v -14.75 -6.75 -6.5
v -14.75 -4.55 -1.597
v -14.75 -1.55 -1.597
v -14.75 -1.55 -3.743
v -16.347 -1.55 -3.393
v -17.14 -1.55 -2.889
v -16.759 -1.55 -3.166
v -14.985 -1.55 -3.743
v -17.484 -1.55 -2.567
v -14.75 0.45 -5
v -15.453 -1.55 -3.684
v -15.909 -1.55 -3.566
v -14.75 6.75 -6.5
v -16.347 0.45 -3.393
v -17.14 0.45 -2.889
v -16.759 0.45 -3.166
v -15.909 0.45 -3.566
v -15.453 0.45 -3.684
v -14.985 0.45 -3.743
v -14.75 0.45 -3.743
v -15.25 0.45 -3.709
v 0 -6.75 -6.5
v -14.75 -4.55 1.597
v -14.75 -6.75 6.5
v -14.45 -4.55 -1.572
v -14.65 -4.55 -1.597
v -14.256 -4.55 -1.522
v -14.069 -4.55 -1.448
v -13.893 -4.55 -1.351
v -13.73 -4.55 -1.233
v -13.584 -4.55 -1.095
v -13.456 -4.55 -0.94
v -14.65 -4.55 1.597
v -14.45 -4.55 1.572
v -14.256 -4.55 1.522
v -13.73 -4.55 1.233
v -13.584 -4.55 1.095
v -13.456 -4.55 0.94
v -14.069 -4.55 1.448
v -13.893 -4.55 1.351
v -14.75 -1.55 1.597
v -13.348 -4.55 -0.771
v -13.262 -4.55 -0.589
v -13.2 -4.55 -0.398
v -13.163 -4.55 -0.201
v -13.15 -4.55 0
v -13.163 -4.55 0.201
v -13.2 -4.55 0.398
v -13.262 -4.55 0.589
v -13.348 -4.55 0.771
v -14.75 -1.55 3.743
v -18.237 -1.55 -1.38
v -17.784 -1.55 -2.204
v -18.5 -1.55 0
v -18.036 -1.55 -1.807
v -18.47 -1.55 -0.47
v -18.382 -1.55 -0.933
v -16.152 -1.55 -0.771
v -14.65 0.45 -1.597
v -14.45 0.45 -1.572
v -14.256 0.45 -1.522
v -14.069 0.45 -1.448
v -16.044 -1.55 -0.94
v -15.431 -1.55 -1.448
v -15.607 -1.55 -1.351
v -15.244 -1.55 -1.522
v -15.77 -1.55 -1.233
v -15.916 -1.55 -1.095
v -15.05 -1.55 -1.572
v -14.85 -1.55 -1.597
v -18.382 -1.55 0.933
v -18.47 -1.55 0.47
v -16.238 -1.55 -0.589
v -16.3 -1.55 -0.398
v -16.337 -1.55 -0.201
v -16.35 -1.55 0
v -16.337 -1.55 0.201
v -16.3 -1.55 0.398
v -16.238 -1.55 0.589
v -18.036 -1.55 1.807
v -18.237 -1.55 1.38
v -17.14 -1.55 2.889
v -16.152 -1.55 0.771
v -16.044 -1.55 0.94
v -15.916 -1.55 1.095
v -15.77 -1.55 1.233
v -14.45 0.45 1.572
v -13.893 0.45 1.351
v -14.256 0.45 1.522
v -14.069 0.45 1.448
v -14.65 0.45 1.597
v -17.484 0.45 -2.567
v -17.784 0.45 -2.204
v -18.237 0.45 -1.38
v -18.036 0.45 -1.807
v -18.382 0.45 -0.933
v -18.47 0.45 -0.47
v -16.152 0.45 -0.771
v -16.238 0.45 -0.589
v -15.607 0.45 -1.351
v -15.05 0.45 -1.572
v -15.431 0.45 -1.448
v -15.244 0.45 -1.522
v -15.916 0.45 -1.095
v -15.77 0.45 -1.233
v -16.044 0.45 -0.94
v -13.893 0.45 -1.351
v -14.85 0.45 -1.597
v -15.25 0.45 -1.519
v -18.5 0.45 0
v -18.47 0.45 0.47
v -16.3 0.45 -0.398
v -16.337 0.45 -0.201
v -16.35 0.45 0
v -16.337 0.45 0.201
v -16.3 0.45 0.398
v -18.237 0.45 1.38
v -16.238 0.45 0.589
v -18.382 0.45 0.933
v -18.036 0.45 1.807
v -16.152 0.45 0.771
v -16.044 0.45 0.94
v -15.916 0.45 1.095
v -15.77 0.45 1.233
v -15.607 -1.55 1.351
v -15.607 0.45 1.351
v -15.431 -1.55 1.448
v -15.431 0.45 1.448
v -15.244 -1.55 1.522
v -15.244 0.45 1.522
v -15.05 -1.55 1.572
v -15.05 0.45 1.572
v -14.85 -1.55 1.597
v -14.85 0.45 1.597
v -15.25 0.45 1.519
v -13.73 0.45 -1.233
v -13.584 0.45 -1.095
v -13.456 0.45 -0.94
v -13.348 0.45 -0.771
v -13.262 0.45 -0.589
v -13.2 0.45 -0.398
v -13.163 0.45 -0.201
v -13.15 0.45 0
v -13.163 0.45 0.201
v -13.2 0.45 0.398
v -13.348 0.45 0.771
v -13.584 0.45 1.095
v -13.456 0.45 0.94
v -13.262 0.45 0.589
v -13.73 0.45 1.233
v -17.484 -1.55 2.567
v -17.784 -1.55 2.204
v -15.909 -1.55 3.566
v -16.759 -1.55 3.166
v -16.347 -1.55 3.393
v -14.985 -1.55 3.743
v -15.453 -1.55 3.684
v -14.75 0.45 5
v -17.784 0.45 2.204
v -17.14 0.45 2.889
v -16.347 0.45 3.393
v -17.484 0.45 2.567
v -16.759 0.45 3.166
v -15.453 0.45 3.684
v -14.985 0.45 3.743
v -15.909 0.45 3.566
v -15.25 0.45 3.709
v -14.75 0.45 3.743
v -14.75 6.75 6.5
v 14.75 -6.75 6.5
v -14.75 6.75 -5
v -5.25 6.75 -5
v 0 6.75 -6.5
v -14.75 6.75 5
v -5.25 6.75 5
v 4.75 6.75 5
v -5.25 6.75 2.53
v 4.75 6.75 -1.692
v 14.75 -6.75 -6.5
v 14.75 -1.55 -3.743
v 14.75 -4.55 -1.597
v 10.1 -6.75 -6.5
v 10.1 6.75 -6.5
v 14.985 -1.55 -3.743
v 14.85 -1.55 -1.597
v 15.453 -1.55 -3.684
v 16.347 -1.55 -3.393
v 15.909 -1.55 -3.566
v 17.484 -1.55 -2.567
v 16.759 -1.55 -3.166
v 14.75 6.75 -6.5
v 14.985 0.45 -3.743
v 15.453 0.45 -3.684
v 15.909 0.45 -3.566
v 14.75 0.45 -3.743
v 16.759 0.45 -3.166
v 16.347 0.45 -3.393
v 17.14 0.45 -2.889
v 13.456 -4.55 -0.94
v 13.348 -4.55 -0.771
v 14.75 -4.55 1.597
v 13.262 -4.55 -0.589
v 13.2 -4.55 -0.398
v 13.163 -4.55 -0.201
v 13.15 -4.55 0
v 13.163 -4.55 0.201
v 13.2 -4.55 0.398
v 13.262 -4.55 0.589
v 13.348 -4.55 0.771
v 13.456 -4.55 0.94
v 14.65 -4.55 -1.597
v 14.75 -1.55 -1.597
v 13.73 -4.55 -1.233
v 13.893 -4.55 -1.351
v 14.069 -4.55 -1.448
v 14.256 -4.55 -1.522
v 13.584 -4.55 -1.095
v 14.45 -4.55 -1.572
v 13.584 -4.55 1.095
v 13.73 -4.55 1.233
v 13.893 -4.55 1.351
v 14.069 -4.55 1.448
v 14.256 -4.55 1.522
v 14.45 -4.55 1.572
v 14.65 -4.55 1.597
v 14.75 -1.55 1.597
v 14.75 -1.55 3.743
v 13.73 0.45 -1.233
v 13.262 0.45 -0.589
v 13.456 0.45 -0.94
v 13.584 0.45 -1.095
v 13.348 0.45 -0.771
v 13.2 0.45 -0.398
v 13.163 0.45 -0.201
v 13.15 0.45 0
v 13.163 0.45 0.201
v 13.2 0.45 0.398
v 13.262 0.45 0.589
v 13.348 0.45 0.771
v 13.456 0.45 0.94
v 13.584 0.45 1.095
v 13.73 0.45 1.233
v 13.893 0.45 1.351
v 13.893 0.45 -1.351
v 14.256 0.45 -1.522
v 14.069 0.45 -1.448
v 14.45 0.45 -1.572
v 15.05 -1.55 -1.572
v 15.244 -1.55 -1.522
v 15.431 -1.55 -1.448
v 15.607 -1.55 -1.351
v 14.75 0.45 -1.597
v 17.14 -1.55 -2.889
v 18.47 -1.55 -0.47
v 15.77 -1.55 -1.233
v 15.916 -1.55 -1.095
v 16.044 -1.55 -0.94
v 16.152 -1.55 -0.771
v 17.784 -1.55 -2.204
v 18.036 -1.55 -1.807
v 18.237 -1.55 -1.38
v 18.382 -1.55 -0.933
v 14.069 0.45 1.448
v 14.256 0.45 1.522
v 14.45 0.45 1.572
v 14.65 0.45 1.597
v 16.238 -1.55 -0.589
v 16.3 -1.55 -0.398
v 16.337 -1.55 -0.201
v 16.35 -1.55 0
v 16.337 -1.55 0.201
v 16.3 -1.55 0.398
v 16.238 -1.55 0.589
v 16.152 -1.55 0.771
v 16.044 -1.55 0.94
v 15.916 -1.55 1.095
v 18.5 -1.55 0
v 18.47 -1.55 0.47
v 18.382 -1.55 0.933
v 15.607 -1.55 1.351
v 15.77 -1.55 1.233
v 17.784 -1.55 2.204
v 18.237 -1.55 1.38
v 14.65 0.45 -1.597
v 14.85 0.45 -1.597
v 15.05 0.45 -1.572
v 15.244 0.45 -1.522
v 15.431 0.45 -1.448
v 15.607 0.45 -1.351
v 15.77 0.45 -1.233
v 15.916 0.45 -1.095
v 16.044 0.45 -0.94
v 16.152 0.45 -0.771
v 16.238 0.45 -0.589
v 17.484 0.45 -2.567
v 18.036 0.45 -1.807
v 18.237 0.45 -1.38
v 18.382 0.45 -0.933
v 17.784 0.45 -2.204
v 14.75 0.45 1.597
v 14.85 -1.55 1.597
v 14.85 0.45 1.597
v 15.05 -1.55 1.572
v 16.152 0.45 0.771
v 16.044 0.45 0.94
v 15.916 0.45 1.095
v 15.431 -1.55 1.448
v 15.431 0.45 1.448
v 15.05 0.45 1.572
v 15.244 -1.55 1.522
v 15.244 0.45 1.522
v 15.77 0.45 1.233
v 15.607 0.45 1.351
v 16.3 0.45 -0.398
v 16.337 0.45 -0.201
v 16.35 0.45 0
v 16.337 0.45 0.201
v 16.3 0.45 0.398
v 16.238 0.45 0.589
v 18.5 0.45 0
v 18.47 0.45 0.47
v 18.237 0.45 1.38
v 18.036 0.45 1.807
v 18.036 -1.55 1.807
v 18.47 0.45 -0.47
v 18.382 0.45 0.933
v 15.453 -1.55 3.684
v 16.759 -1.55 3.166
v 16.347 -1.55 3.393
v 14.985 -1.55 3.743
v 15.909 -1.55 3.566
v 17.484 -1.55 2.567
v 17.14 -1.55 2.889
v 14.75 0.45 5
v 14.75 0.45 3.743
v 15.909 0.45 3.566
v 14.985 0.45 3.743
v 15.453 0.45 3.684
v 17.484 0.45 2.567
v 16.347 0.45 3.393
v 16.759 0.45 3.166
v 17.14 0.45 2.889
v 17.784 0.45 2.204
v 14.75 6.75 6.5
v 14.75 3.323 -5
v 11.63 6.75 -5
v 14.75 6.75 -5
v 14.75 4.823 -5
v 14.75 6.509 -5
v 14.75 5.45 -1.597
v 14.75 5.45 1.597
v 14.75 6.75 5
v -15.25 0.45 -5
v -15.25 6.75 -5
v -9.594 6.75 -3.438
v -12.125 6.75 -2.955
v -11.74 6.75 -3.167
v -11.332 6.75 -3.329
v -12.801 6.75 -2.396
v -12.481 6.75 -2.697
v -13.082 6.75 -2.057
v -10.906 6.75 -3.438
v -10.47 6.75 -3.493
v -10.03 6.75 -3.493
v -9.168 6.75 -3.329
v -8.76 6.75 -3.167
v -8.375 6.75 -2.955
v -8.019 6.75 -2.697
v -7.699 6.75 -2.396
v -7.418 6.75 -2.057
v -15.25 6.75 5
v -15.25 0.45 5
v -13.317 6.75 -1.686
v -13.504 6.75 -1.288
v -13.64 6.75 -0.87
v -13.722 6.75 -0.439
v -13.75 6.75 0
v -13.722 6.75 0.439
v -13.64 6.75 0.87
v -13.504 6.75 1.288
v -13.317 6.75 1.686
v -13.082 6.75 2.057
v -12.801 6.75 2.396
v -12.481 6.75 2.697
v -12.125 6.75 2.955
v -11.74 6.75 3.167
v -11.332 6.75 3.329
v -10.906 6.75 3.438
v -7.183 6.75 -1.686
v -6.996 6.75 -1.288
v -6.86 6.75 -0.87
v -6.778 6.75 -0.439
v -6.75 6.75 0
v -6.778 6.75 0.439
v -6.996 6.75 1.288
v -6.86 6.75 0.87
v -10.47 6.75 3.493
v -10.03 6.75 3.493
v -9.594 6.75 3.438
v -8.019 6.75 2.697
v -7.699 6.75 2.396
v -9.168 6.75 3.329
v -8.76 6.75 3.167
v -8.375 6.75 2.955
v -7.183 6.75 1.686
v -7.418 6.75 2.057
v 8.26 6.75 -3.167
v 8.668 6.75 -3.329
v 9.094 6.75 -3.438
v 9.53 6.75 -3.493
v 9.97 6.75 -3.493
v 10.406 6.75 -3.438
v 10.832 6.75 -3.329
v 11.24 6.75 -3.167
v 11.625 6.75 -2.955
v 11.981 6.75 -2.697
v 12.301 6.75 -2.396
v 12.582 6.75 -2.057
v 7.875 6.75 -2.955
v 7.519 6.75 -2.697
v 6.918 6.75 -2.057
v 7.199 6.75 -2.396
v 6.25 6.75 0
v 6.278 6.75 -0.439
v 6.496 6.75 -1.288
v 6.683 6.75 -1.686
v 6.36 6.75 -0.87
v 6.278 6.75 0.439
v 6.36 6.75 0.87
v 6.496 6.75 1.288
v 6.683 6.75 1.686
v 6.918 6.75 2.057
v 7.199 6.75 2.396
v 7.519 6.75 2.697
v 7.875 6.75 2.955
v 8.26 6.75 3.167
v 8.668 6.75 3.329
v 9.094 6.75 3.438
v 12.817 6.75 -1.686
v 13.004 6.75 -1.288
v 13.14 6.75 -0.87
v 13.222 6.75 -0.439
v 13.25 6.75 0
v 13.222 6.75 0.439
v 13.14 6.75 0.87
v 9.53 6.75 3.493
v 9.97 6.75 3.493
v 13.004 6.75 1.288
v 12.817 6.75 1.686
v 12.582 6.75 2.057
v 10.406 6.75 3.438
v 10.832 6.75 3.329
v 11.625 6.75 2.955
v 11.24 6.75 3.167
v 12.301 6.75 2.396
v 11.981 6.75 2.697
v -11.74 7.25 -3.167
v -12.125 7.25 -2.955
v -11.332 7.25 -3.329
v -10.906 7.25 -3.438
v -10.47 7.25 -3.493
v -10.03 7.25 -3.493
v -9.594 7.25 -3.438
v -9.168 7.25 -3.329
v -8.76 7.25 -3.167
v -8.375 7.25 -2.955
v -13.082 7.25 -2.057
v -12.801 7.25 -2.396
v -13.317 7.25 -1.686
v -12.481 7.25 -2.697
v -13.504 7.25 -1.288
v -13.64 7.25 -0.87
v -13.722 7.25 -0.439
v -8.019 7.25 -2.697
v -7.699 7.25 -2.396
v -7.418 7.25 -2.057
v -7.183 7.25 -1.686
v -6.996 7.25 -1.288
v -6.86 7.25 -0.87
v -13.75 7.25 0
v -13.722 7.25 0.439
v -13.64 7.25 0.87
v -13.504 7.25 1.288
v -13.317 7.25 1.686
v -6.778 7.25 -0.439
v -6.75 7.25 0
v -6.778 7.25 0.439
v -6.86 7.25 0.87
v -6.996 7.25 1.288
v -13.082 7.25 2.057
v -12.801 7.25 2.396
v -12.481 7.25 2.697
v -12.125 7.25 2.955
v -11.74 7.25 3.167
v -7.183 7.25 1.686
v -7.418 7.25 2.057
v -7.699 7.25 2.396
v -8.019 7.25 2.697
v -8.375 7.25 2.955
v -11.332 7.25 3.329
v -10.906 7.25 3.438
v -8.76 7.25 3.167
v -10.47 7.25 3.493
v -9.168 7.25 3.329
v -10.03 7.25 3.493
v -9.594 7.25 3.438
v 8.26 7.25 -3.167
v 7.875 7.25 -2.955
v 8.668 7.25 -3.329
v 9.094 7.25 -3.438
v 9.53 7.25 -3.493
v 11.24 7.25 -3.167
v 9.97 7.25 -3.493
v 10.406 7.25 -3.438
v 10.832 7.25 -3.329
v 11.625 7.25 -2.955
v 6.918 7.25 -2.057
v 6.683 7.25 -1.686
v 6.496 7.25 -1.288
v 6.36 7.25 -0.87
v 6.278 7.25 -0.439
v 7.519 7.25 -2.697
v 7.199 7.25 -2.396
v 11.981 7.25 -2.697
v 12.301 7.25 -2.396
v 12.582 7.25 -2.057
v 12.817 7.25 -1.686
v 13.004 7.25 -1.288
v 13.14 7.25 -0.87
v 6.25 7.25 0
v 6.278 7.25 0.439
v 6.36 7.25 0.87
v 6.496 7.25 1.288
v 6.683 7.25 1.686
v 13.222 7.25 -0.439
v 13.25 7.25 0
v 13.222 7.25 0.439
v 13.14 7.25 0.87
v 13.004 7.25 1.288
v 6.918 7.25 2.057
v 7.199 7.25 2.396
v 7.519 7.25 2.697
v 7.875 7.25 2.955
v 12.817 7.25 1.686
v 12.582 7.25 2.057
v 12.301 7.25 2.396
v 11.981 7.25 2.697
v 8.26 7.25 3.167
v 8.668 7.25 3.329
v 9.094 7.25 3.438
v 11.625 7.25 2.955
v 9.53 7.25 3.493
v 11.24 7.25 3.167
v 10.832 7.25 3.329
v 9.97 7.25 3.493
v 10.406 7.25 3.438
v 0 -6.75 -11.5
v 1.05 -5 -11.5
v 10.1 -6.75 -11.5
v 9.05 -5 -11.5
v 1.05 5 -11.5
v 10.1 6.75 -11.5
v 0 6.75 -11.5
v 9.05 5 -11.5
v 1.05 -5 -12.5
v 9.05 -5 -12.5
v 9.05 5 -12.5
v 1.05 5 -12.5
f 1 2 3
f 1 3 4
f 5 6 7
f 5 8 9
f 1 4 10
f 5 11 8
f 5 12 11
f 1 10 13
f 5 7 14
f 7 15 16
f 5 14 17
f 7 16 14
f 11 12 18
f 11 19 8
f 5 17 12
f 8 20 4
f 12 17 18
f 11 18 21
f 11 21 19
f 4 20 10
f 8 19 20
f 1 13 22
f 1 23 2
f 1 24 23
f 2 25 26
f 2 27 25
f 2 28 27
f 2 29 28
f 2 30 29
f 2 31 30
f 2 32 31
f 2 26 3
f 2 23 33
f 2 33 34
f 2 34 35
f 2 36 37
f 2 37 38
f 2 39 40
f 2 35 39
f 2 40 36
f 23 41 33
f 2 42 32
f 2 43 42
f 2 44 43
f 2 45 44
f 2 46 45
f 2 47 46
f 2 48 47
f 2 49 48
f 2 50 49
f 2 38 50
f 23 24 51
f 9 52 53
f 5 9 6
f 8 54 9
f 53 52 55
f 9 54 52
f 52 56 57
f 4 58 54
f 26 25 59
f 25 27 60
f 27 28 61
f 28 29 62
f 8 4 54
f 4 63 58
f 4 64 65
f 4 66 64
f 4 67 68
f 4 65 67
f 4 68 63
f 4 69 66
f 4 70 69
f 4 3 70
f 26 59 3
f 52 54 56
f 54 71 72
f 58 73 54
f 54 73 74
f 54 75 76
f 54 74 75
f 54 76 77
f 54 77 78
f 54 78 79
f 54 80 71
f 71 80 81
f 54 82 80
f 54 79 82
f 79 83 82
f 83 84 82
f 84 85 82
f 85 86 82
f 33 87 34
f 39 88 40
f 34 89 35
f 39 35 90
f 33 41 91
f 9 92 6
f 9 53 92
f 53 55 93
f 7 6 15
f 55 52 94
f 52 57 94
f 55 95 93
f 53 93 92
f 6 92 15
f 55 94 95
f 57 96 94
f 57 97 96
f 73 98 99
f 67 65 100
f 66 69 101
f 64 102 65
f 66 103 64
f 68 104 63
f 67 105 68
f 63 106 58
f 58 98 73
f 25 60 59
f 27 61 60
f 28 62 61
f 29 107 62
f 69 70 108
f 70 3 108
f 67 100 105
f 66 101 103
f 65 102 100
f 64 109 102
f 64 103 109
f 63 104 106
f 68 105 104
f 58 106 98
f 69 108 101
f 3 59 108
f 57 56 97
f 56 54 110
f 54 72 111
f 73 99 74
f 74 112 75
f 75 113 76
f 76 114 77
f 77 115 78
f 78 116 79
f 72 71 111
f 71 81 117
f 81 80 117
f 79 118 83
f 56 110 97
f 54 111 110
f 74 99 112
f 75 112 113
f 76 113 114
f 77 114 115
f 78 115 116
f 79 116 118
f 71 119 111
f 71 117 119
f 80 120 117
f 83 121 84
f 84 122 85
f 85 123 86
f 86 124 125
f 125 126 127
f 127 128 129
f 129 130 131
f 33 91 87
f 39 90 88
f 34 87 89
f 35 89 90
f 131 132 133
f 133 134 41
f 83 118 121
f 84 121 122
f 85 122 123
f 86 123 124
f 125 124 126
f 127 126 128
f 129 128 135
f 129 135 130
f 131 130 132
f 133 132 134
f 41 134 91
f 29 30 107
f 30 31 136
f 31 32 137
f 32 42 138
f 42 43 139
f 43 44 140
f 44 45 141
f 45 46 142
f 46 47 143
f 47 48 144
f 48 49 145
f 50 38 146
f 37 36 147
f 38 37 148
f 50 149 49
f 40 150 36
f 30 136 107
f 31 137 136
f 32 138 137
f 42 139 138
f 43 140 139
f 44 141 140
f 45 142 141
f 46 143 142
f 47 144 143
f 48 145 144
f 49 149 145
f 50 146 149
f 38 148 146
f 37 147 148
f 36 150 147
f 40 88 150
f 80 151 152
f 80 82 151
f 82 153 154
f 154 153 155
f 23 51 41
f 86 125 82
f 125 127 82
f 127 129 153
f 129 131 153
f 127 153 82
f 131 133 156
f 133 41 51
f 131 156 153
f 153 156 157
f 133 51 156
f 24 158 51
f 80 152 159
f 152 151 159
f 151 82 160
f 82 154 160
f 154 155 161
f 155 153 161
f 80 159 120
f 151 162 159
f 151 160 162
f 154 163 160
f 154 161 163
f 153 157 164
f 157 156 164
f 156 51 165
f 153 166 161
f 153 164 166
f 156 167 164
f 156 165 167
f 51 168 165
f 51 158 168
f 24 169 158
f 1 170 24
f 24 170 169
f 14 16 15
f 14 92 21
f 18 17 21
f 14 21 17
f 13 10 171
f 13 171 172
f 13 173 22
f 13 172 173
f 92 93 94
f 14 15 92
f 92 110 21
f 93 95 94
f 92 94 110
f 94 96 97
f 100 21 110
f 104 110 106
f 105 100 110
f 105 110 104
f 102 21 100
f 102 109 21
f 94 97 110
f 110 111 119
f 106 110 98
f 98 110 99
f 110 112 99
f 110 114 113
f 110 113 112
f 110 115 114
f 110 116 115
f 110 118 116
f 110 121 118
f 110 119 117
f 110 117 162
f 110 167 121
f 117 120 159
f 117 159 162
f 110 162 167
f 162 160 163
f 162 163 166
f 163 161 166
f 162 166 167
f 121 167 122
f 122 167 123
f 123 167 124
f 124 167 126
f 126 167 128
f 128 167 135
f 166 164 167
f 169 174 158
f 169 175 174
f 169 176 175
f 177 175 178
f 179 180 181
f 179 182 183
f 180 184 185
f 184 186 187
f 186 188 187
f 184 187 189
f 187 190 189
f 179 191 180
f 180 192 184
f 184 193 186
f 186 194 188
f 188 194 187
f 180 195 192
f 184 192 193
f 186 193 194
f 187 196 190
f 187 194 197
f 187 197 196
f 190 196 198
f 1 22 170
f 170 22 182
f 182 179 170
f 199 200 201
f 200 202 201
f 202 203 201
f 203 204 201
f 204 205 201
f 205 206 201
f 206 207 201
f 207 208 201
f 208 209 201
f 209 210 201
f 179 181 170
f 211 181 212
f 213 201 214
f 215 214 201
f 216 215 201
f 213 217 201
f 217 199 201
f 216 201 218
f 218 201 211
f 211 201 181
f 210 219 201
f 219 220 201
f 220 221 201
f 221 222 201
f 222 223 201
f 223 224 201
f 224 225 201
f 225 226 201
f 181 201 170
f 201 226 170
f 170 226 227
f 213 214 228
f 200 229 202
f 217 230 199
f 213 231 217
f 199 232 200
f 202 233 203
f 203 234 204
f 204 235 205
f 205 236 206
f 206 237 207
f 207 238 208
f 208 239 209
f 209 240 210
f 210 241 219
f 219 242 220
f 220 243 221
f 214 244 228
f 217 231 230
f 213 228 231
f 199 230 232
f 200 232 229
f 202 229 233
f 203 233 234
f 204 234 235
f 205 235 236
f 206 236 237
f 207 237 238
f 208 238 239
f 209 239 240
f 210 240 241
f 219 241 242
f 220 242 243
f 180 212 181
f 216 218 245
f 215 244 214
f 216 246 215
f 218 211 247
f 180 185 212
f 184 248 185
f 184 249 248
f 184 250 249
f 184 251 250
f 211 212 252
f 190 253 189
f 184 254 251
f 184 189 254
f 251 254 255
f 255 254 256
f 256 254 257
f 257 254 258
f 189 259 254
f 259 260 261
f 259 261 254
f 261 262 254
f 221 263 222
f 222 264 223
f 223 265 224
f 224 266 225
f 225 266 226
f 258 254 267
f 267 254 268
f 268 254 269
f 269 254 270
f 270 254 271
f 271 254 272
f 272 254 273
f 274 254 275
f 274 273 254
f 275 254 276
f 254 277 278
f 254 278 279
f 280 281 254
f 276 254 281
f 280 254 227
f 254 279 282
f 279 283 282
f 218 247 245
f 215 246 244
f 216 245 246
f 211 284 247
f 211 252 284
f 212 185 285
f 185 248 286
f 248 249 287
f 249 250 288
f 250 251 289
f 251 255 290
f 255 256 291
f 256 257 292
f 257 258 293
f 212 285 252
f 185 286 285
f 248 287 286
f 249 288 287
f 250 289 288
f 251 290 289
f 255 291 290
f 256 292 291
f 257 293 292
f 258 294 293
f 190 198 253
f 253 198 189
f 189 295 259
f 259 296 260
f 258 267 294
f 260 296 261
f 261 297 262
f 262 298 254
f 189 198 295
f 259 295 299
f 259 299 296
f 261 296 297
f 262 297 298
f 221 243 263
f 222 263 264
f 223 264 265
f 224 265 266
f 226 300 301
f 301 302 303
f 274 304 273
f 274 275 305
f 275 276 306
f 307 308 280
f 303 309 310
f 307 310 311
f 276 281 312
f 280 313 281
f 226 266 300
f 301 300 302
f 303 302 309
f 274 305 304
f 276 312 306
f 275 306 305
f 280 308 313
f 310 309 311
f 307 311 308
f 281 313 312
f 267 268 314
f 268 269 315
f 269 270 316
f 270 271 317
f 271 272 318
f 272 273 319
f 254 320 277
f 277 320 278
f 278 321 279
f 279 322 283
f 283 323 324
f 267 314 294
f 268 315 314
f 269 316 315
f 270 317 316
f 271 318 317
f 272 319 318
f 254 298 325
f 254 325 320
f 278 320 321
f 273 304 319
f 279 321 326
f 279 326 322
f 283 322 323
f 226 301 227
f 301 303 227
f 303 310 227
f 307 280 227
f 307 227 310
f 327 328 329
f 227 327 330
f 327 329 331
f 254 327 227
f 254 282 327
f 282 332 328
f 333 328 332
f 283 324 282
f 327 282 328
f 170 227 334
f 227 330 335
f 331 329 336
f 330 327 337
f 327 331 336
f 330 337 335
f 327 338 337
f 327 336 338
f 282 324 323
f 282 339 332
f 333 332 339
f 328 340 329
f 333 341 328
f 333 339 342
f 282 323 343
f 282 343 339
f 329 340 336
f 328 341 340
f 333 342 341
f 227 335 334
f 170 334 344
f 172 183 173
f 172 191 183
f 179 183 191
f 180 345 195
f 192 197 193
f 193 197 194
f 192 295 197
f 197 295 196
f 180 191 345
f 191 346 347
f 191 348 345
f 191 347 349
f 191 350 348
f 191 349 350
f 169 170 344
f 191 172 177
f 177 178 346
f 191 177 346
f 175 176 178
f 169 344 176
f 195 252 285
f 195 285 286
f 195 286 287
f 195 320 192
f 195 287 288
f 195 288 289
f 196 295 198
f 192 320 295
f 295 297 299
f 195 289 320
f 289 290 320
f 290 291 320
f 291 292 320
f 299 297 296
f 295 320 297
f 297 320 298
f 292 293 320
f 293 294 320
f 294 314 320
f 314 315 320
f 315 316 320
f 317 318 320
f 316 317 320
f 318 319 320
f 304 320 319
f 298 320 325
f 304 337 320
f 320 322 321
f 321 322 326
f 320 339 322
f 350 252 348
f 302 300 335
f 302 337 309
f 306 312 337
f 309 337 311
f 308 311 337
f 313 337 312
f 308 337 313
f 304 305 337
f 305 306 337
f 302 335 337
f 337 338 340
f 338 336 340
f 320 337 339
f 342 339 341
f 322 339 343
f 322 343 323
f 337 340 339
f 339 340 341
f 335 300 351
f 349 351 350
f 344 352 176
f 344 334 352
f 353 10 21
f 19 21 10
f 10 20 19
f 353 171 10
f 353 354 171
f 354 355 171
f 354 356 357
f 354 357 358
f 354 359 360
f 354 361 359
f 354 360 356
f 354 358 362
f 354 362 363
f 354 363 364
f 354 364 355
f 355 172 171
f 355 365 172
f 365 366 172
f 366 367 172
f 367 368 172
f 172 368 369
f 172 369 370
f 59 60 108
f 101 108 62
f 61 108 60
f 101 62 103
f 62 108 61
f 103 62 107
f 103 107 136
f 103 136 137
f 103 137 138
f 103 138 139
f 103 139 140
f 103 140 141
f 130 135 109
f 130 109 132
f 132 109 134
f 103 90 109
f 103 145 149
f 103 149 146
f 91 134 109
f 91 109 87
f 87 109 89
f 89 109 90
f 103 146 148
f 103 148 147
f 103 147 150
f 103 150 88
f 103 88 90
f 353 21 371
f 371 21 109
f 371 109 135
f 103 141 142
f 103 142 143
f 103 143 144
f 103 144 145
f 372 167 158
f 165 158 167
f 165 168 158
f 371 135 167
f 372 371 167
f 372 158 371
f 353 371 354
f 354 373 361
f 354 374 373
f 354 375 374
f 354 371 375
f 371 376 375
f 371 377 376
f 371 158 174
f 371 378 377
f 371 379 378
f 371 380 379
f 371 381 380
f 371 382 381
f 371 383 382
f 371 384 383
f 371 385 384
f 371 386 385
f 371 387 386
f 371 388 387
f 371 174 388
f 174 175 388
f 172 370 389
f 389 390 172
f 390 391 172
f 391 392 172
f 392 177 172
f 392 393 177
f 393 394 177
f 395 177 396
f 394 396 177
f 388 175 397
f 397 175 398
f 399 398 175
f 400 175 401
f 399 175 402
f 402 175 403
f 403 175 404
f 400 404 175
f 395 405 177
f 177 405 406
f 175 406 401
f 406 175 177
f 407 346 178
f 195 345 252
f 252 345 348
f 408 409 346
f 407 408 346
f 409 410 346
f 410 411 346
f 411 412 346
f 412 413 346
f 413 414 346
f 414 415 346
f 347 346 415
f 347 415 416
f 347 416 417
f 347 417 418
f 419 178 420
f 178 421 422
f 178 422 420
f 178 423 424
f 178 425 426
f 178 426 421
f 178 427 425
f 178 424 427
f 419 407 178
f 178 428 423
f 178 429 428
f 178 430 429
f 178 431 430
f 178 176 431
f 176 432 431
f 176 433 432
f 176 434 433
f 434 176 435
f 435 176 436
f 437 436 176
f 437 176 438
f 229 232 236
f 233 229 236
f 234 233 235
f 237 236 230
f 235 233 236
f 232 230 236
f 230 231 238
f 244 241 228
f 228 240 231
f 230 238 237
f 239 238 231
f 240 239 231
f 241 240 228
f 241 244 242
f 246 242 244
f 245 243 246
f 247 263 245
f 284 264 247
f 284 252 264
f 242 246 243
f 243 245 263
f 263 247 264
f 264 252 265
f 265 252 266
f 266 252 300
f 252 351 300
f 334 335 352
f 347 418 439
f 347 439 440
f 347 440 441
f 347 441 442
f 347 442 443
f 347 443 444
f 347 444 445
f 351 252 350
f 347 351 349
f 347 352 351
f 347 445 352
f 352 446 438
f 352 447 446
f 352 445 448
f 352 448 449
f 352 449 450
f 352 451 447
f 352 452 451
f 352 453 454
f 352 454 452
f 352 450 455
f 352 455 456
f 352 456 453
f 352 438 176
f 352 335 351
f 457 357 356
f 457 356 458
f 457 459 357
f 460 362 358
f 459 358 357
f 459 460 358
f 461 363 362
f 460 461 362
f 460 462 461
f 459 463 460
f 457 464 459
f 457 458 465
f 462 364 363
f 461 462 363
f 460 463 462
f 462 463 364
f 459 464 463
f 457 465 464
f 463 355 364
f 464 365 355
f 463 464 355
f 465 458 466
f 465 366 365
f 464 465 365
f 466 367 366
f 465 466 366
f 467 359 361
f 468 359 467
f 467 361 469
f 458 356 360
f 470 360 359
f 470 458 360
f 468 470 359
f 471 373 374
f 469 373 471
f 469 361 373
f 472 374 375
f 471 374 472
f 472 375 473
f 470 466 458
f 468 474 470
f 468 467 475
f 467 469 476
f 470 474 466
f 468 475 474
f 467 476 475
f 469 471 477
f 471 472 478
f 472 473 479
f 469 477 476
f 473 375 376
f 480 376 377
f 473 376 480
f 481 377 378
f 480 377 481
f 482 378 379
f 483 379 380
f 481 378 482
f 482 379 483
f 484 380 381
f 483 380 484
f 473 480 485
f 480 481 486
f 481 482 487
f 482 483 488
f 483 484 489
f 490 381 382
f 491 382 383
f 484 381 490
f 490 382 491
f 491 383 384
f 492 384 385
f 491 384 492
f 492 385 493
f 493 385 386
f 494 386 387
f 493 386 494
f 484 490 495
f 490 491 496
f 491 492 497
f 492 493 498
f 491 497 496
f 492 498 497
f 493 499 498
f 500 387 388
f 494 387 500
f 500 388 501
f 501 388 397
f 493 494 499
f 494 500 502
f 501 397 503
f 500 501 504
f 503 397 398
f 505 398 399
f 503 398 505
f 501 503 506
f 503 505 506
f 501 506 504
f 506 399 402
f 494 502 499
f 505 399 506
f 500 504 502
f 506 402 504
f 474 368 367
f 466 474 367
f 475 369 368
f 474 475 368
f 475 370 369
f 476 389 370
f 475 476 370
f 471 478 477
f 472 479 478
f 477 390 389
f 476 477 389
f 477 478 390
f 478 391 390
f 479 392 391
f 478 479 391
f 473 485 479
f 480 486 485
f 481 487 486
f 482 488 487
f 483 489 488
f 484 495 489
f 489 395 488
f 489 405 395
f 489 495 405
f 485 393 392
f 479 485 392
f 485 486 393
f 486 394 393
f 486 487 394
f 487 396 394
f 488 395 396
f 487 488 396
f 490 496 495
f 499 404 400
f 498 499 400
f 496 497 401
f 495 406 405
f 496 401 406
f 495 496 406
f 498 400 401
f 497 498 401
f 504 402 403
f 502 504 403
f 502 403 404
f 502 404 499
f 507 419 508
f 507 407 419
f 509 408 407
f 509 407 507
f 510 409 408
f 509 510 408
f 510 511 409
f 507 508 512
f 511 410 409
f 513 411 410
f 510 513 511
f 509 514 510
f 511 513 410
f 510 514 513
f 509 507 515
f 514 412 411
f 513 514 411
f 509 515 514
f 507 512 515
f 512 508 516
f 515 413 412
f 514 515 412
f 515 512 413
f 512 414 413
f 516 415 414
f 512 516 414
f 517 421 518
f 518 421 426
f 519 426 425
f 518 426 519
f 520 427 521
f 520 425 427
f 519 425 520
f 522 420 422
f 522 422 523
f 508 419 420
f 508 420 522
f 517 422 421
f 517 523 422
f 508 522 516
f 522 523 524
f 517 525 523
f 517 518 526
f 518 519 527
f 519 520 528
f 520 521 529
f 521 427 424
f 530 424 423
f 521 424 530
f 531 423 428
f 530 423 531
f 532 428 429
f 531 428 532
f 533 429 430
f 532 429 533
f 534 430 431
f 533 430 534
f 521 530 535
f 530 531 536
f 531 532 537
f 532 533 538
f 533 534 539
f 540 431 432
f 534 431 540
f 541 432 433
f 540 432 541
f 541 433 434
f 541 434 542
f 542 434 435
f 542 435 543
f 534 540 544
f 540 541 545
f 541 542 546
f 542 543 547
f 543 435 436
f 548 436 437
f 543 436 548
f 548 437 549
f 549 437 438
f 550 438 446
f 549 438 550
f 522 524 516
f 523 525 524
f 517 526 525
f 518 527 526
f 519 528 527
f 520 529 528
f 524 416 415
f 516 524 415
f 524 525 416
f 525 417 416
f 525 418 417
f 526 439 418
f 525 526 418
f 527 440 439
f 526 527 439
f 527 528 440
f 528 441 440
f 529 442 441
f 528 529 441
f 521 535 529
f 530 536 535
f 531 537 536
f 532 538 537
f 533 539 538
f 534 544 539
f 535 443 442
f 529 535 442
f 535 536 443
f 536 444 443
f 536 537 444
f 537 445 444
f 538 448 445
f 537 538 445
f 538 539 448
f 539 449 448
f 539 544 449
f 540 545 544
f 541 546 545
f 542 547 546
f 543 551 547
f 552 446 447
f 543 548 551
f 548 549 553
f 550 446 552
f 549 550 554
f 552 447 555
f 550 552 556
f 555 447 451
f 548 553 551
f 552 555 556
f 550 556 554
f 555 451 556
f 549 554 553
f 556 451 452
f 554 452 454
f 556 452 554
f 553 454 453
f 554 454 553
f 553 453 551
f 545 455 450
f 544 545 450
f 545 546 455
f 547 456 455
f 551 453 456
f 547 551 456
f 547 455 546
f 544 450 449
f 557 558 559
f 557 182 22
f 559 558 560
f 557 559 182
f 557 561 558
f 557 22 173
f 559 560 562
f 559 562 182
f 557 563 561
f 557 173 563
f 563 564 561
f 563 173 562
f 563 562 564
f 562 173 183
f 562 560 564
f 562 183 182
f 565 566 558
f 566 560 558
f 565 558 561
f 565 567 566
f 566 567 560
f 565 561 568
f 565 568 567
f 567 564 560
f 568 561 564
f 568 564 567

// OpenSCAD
/*
 * Sharp GP2Y0A21YK0F IR Distance Sensor
 * Unit: mm
 * Origin: Center of the main body (29.5 x 13.0 x 13.5)
 */

$fn = 50;

// 色の定義
COLOR_BODY = [0.2, 0.2, 0.2];
COLOR_LENS = [0.1, 0.1, 0.1];
COLOR_CONN = [0.9, 0.9, 0.8];

module gp2y0a21yk0f() {
    // 基本寸法
    body_w = 29.5;
    body_h = 13.0;
    body_d = 13.5;
    
    // 取付フランジの厚みと位置
    flange_t = 2.0;
    // レンズ前面から取付面までの距離は 6.3mm
    // 本体の中心(y=0)から見ると、前面は body_d/2 = 6.75
    // 取付面(y) = 6.75 - 6.3 = 0.45
    mount_y = (body_d / 2) - 6.3;

    // レンズ中心位置 (左端から 4.5mm と 穴間隔 20mm)
    // 左端は -29.5/2 = -14.75
    lens_L_x = -14.75 + 4.5; // -10.25
    lens_R_x = lens_L_x + 20; // 9.75

    union() {
        // --- メインボディ (背面側) ---
        color(COLOR_BODY)
        difference() {
            union() {
                // 本体ブロック
                cube([body_w, body_d, body_h], center=true);
                
                // 取付フランジ (耳の部分)
                // 幅37mm, 中心間29.5mm
                translate([0, mount_y - flange_t/2, 0])
                hull() {
                    translate([-body_w/2, 0, 0]) rotate([90, 0, 0]) 
                        cylinder(d=7.5, h=flange_t, center=true);
                    translate([body_w/2, 0, 0]) rotate([90, 0, 0]) 
                        cylinder(d=7.5, h=flange_t, center=true);
                }
            }

            // 取付穴 (φ3.2mm)
            for(x = [-14.75, 14.75]) {
                translate([x, mount_y, 0]) rotate([90, 0, 0]) 
                    cylinder(d=3.2, h=10, center=true);
            }
        }

        // --- レンズケース (前面突出部) ---
        color(COLOR_BODY)
        for(x = [lens_L_x, lens_R_x]) {
            translate([x, (body_d/2) - 6.3/2, 0])
                cube([10, 6.3, 10], center=true);
        }

        // --- レンズ (窓部分) ---
        color(COLOR_LENS)
        for(x = [lens_L_x, lens_R_x]) {
            translate([x, body_d/2, 0]) rotate([-90, 0, 0]) 
                cylinder(d=7, h=0.5, center=false);
        }

        // --- コネクタハウジング (底面) ---
        // 幅10.1mm, 本体の中心から右側に向かって配置
        color(COLOR_CONN)
        translate([5.05, 0, -body_h/2 - 2.5])
            cube([10.1, body_d, 5], center=true);
            
        // コネクタ突起 (簡易)
        color(COLOR_CONN)
        translate([5.05, 0, -body_h/2 - 5])
            cube([8, 10, 2], center=true);
    }
}

// 実行
gp2y0a21yk0f();
